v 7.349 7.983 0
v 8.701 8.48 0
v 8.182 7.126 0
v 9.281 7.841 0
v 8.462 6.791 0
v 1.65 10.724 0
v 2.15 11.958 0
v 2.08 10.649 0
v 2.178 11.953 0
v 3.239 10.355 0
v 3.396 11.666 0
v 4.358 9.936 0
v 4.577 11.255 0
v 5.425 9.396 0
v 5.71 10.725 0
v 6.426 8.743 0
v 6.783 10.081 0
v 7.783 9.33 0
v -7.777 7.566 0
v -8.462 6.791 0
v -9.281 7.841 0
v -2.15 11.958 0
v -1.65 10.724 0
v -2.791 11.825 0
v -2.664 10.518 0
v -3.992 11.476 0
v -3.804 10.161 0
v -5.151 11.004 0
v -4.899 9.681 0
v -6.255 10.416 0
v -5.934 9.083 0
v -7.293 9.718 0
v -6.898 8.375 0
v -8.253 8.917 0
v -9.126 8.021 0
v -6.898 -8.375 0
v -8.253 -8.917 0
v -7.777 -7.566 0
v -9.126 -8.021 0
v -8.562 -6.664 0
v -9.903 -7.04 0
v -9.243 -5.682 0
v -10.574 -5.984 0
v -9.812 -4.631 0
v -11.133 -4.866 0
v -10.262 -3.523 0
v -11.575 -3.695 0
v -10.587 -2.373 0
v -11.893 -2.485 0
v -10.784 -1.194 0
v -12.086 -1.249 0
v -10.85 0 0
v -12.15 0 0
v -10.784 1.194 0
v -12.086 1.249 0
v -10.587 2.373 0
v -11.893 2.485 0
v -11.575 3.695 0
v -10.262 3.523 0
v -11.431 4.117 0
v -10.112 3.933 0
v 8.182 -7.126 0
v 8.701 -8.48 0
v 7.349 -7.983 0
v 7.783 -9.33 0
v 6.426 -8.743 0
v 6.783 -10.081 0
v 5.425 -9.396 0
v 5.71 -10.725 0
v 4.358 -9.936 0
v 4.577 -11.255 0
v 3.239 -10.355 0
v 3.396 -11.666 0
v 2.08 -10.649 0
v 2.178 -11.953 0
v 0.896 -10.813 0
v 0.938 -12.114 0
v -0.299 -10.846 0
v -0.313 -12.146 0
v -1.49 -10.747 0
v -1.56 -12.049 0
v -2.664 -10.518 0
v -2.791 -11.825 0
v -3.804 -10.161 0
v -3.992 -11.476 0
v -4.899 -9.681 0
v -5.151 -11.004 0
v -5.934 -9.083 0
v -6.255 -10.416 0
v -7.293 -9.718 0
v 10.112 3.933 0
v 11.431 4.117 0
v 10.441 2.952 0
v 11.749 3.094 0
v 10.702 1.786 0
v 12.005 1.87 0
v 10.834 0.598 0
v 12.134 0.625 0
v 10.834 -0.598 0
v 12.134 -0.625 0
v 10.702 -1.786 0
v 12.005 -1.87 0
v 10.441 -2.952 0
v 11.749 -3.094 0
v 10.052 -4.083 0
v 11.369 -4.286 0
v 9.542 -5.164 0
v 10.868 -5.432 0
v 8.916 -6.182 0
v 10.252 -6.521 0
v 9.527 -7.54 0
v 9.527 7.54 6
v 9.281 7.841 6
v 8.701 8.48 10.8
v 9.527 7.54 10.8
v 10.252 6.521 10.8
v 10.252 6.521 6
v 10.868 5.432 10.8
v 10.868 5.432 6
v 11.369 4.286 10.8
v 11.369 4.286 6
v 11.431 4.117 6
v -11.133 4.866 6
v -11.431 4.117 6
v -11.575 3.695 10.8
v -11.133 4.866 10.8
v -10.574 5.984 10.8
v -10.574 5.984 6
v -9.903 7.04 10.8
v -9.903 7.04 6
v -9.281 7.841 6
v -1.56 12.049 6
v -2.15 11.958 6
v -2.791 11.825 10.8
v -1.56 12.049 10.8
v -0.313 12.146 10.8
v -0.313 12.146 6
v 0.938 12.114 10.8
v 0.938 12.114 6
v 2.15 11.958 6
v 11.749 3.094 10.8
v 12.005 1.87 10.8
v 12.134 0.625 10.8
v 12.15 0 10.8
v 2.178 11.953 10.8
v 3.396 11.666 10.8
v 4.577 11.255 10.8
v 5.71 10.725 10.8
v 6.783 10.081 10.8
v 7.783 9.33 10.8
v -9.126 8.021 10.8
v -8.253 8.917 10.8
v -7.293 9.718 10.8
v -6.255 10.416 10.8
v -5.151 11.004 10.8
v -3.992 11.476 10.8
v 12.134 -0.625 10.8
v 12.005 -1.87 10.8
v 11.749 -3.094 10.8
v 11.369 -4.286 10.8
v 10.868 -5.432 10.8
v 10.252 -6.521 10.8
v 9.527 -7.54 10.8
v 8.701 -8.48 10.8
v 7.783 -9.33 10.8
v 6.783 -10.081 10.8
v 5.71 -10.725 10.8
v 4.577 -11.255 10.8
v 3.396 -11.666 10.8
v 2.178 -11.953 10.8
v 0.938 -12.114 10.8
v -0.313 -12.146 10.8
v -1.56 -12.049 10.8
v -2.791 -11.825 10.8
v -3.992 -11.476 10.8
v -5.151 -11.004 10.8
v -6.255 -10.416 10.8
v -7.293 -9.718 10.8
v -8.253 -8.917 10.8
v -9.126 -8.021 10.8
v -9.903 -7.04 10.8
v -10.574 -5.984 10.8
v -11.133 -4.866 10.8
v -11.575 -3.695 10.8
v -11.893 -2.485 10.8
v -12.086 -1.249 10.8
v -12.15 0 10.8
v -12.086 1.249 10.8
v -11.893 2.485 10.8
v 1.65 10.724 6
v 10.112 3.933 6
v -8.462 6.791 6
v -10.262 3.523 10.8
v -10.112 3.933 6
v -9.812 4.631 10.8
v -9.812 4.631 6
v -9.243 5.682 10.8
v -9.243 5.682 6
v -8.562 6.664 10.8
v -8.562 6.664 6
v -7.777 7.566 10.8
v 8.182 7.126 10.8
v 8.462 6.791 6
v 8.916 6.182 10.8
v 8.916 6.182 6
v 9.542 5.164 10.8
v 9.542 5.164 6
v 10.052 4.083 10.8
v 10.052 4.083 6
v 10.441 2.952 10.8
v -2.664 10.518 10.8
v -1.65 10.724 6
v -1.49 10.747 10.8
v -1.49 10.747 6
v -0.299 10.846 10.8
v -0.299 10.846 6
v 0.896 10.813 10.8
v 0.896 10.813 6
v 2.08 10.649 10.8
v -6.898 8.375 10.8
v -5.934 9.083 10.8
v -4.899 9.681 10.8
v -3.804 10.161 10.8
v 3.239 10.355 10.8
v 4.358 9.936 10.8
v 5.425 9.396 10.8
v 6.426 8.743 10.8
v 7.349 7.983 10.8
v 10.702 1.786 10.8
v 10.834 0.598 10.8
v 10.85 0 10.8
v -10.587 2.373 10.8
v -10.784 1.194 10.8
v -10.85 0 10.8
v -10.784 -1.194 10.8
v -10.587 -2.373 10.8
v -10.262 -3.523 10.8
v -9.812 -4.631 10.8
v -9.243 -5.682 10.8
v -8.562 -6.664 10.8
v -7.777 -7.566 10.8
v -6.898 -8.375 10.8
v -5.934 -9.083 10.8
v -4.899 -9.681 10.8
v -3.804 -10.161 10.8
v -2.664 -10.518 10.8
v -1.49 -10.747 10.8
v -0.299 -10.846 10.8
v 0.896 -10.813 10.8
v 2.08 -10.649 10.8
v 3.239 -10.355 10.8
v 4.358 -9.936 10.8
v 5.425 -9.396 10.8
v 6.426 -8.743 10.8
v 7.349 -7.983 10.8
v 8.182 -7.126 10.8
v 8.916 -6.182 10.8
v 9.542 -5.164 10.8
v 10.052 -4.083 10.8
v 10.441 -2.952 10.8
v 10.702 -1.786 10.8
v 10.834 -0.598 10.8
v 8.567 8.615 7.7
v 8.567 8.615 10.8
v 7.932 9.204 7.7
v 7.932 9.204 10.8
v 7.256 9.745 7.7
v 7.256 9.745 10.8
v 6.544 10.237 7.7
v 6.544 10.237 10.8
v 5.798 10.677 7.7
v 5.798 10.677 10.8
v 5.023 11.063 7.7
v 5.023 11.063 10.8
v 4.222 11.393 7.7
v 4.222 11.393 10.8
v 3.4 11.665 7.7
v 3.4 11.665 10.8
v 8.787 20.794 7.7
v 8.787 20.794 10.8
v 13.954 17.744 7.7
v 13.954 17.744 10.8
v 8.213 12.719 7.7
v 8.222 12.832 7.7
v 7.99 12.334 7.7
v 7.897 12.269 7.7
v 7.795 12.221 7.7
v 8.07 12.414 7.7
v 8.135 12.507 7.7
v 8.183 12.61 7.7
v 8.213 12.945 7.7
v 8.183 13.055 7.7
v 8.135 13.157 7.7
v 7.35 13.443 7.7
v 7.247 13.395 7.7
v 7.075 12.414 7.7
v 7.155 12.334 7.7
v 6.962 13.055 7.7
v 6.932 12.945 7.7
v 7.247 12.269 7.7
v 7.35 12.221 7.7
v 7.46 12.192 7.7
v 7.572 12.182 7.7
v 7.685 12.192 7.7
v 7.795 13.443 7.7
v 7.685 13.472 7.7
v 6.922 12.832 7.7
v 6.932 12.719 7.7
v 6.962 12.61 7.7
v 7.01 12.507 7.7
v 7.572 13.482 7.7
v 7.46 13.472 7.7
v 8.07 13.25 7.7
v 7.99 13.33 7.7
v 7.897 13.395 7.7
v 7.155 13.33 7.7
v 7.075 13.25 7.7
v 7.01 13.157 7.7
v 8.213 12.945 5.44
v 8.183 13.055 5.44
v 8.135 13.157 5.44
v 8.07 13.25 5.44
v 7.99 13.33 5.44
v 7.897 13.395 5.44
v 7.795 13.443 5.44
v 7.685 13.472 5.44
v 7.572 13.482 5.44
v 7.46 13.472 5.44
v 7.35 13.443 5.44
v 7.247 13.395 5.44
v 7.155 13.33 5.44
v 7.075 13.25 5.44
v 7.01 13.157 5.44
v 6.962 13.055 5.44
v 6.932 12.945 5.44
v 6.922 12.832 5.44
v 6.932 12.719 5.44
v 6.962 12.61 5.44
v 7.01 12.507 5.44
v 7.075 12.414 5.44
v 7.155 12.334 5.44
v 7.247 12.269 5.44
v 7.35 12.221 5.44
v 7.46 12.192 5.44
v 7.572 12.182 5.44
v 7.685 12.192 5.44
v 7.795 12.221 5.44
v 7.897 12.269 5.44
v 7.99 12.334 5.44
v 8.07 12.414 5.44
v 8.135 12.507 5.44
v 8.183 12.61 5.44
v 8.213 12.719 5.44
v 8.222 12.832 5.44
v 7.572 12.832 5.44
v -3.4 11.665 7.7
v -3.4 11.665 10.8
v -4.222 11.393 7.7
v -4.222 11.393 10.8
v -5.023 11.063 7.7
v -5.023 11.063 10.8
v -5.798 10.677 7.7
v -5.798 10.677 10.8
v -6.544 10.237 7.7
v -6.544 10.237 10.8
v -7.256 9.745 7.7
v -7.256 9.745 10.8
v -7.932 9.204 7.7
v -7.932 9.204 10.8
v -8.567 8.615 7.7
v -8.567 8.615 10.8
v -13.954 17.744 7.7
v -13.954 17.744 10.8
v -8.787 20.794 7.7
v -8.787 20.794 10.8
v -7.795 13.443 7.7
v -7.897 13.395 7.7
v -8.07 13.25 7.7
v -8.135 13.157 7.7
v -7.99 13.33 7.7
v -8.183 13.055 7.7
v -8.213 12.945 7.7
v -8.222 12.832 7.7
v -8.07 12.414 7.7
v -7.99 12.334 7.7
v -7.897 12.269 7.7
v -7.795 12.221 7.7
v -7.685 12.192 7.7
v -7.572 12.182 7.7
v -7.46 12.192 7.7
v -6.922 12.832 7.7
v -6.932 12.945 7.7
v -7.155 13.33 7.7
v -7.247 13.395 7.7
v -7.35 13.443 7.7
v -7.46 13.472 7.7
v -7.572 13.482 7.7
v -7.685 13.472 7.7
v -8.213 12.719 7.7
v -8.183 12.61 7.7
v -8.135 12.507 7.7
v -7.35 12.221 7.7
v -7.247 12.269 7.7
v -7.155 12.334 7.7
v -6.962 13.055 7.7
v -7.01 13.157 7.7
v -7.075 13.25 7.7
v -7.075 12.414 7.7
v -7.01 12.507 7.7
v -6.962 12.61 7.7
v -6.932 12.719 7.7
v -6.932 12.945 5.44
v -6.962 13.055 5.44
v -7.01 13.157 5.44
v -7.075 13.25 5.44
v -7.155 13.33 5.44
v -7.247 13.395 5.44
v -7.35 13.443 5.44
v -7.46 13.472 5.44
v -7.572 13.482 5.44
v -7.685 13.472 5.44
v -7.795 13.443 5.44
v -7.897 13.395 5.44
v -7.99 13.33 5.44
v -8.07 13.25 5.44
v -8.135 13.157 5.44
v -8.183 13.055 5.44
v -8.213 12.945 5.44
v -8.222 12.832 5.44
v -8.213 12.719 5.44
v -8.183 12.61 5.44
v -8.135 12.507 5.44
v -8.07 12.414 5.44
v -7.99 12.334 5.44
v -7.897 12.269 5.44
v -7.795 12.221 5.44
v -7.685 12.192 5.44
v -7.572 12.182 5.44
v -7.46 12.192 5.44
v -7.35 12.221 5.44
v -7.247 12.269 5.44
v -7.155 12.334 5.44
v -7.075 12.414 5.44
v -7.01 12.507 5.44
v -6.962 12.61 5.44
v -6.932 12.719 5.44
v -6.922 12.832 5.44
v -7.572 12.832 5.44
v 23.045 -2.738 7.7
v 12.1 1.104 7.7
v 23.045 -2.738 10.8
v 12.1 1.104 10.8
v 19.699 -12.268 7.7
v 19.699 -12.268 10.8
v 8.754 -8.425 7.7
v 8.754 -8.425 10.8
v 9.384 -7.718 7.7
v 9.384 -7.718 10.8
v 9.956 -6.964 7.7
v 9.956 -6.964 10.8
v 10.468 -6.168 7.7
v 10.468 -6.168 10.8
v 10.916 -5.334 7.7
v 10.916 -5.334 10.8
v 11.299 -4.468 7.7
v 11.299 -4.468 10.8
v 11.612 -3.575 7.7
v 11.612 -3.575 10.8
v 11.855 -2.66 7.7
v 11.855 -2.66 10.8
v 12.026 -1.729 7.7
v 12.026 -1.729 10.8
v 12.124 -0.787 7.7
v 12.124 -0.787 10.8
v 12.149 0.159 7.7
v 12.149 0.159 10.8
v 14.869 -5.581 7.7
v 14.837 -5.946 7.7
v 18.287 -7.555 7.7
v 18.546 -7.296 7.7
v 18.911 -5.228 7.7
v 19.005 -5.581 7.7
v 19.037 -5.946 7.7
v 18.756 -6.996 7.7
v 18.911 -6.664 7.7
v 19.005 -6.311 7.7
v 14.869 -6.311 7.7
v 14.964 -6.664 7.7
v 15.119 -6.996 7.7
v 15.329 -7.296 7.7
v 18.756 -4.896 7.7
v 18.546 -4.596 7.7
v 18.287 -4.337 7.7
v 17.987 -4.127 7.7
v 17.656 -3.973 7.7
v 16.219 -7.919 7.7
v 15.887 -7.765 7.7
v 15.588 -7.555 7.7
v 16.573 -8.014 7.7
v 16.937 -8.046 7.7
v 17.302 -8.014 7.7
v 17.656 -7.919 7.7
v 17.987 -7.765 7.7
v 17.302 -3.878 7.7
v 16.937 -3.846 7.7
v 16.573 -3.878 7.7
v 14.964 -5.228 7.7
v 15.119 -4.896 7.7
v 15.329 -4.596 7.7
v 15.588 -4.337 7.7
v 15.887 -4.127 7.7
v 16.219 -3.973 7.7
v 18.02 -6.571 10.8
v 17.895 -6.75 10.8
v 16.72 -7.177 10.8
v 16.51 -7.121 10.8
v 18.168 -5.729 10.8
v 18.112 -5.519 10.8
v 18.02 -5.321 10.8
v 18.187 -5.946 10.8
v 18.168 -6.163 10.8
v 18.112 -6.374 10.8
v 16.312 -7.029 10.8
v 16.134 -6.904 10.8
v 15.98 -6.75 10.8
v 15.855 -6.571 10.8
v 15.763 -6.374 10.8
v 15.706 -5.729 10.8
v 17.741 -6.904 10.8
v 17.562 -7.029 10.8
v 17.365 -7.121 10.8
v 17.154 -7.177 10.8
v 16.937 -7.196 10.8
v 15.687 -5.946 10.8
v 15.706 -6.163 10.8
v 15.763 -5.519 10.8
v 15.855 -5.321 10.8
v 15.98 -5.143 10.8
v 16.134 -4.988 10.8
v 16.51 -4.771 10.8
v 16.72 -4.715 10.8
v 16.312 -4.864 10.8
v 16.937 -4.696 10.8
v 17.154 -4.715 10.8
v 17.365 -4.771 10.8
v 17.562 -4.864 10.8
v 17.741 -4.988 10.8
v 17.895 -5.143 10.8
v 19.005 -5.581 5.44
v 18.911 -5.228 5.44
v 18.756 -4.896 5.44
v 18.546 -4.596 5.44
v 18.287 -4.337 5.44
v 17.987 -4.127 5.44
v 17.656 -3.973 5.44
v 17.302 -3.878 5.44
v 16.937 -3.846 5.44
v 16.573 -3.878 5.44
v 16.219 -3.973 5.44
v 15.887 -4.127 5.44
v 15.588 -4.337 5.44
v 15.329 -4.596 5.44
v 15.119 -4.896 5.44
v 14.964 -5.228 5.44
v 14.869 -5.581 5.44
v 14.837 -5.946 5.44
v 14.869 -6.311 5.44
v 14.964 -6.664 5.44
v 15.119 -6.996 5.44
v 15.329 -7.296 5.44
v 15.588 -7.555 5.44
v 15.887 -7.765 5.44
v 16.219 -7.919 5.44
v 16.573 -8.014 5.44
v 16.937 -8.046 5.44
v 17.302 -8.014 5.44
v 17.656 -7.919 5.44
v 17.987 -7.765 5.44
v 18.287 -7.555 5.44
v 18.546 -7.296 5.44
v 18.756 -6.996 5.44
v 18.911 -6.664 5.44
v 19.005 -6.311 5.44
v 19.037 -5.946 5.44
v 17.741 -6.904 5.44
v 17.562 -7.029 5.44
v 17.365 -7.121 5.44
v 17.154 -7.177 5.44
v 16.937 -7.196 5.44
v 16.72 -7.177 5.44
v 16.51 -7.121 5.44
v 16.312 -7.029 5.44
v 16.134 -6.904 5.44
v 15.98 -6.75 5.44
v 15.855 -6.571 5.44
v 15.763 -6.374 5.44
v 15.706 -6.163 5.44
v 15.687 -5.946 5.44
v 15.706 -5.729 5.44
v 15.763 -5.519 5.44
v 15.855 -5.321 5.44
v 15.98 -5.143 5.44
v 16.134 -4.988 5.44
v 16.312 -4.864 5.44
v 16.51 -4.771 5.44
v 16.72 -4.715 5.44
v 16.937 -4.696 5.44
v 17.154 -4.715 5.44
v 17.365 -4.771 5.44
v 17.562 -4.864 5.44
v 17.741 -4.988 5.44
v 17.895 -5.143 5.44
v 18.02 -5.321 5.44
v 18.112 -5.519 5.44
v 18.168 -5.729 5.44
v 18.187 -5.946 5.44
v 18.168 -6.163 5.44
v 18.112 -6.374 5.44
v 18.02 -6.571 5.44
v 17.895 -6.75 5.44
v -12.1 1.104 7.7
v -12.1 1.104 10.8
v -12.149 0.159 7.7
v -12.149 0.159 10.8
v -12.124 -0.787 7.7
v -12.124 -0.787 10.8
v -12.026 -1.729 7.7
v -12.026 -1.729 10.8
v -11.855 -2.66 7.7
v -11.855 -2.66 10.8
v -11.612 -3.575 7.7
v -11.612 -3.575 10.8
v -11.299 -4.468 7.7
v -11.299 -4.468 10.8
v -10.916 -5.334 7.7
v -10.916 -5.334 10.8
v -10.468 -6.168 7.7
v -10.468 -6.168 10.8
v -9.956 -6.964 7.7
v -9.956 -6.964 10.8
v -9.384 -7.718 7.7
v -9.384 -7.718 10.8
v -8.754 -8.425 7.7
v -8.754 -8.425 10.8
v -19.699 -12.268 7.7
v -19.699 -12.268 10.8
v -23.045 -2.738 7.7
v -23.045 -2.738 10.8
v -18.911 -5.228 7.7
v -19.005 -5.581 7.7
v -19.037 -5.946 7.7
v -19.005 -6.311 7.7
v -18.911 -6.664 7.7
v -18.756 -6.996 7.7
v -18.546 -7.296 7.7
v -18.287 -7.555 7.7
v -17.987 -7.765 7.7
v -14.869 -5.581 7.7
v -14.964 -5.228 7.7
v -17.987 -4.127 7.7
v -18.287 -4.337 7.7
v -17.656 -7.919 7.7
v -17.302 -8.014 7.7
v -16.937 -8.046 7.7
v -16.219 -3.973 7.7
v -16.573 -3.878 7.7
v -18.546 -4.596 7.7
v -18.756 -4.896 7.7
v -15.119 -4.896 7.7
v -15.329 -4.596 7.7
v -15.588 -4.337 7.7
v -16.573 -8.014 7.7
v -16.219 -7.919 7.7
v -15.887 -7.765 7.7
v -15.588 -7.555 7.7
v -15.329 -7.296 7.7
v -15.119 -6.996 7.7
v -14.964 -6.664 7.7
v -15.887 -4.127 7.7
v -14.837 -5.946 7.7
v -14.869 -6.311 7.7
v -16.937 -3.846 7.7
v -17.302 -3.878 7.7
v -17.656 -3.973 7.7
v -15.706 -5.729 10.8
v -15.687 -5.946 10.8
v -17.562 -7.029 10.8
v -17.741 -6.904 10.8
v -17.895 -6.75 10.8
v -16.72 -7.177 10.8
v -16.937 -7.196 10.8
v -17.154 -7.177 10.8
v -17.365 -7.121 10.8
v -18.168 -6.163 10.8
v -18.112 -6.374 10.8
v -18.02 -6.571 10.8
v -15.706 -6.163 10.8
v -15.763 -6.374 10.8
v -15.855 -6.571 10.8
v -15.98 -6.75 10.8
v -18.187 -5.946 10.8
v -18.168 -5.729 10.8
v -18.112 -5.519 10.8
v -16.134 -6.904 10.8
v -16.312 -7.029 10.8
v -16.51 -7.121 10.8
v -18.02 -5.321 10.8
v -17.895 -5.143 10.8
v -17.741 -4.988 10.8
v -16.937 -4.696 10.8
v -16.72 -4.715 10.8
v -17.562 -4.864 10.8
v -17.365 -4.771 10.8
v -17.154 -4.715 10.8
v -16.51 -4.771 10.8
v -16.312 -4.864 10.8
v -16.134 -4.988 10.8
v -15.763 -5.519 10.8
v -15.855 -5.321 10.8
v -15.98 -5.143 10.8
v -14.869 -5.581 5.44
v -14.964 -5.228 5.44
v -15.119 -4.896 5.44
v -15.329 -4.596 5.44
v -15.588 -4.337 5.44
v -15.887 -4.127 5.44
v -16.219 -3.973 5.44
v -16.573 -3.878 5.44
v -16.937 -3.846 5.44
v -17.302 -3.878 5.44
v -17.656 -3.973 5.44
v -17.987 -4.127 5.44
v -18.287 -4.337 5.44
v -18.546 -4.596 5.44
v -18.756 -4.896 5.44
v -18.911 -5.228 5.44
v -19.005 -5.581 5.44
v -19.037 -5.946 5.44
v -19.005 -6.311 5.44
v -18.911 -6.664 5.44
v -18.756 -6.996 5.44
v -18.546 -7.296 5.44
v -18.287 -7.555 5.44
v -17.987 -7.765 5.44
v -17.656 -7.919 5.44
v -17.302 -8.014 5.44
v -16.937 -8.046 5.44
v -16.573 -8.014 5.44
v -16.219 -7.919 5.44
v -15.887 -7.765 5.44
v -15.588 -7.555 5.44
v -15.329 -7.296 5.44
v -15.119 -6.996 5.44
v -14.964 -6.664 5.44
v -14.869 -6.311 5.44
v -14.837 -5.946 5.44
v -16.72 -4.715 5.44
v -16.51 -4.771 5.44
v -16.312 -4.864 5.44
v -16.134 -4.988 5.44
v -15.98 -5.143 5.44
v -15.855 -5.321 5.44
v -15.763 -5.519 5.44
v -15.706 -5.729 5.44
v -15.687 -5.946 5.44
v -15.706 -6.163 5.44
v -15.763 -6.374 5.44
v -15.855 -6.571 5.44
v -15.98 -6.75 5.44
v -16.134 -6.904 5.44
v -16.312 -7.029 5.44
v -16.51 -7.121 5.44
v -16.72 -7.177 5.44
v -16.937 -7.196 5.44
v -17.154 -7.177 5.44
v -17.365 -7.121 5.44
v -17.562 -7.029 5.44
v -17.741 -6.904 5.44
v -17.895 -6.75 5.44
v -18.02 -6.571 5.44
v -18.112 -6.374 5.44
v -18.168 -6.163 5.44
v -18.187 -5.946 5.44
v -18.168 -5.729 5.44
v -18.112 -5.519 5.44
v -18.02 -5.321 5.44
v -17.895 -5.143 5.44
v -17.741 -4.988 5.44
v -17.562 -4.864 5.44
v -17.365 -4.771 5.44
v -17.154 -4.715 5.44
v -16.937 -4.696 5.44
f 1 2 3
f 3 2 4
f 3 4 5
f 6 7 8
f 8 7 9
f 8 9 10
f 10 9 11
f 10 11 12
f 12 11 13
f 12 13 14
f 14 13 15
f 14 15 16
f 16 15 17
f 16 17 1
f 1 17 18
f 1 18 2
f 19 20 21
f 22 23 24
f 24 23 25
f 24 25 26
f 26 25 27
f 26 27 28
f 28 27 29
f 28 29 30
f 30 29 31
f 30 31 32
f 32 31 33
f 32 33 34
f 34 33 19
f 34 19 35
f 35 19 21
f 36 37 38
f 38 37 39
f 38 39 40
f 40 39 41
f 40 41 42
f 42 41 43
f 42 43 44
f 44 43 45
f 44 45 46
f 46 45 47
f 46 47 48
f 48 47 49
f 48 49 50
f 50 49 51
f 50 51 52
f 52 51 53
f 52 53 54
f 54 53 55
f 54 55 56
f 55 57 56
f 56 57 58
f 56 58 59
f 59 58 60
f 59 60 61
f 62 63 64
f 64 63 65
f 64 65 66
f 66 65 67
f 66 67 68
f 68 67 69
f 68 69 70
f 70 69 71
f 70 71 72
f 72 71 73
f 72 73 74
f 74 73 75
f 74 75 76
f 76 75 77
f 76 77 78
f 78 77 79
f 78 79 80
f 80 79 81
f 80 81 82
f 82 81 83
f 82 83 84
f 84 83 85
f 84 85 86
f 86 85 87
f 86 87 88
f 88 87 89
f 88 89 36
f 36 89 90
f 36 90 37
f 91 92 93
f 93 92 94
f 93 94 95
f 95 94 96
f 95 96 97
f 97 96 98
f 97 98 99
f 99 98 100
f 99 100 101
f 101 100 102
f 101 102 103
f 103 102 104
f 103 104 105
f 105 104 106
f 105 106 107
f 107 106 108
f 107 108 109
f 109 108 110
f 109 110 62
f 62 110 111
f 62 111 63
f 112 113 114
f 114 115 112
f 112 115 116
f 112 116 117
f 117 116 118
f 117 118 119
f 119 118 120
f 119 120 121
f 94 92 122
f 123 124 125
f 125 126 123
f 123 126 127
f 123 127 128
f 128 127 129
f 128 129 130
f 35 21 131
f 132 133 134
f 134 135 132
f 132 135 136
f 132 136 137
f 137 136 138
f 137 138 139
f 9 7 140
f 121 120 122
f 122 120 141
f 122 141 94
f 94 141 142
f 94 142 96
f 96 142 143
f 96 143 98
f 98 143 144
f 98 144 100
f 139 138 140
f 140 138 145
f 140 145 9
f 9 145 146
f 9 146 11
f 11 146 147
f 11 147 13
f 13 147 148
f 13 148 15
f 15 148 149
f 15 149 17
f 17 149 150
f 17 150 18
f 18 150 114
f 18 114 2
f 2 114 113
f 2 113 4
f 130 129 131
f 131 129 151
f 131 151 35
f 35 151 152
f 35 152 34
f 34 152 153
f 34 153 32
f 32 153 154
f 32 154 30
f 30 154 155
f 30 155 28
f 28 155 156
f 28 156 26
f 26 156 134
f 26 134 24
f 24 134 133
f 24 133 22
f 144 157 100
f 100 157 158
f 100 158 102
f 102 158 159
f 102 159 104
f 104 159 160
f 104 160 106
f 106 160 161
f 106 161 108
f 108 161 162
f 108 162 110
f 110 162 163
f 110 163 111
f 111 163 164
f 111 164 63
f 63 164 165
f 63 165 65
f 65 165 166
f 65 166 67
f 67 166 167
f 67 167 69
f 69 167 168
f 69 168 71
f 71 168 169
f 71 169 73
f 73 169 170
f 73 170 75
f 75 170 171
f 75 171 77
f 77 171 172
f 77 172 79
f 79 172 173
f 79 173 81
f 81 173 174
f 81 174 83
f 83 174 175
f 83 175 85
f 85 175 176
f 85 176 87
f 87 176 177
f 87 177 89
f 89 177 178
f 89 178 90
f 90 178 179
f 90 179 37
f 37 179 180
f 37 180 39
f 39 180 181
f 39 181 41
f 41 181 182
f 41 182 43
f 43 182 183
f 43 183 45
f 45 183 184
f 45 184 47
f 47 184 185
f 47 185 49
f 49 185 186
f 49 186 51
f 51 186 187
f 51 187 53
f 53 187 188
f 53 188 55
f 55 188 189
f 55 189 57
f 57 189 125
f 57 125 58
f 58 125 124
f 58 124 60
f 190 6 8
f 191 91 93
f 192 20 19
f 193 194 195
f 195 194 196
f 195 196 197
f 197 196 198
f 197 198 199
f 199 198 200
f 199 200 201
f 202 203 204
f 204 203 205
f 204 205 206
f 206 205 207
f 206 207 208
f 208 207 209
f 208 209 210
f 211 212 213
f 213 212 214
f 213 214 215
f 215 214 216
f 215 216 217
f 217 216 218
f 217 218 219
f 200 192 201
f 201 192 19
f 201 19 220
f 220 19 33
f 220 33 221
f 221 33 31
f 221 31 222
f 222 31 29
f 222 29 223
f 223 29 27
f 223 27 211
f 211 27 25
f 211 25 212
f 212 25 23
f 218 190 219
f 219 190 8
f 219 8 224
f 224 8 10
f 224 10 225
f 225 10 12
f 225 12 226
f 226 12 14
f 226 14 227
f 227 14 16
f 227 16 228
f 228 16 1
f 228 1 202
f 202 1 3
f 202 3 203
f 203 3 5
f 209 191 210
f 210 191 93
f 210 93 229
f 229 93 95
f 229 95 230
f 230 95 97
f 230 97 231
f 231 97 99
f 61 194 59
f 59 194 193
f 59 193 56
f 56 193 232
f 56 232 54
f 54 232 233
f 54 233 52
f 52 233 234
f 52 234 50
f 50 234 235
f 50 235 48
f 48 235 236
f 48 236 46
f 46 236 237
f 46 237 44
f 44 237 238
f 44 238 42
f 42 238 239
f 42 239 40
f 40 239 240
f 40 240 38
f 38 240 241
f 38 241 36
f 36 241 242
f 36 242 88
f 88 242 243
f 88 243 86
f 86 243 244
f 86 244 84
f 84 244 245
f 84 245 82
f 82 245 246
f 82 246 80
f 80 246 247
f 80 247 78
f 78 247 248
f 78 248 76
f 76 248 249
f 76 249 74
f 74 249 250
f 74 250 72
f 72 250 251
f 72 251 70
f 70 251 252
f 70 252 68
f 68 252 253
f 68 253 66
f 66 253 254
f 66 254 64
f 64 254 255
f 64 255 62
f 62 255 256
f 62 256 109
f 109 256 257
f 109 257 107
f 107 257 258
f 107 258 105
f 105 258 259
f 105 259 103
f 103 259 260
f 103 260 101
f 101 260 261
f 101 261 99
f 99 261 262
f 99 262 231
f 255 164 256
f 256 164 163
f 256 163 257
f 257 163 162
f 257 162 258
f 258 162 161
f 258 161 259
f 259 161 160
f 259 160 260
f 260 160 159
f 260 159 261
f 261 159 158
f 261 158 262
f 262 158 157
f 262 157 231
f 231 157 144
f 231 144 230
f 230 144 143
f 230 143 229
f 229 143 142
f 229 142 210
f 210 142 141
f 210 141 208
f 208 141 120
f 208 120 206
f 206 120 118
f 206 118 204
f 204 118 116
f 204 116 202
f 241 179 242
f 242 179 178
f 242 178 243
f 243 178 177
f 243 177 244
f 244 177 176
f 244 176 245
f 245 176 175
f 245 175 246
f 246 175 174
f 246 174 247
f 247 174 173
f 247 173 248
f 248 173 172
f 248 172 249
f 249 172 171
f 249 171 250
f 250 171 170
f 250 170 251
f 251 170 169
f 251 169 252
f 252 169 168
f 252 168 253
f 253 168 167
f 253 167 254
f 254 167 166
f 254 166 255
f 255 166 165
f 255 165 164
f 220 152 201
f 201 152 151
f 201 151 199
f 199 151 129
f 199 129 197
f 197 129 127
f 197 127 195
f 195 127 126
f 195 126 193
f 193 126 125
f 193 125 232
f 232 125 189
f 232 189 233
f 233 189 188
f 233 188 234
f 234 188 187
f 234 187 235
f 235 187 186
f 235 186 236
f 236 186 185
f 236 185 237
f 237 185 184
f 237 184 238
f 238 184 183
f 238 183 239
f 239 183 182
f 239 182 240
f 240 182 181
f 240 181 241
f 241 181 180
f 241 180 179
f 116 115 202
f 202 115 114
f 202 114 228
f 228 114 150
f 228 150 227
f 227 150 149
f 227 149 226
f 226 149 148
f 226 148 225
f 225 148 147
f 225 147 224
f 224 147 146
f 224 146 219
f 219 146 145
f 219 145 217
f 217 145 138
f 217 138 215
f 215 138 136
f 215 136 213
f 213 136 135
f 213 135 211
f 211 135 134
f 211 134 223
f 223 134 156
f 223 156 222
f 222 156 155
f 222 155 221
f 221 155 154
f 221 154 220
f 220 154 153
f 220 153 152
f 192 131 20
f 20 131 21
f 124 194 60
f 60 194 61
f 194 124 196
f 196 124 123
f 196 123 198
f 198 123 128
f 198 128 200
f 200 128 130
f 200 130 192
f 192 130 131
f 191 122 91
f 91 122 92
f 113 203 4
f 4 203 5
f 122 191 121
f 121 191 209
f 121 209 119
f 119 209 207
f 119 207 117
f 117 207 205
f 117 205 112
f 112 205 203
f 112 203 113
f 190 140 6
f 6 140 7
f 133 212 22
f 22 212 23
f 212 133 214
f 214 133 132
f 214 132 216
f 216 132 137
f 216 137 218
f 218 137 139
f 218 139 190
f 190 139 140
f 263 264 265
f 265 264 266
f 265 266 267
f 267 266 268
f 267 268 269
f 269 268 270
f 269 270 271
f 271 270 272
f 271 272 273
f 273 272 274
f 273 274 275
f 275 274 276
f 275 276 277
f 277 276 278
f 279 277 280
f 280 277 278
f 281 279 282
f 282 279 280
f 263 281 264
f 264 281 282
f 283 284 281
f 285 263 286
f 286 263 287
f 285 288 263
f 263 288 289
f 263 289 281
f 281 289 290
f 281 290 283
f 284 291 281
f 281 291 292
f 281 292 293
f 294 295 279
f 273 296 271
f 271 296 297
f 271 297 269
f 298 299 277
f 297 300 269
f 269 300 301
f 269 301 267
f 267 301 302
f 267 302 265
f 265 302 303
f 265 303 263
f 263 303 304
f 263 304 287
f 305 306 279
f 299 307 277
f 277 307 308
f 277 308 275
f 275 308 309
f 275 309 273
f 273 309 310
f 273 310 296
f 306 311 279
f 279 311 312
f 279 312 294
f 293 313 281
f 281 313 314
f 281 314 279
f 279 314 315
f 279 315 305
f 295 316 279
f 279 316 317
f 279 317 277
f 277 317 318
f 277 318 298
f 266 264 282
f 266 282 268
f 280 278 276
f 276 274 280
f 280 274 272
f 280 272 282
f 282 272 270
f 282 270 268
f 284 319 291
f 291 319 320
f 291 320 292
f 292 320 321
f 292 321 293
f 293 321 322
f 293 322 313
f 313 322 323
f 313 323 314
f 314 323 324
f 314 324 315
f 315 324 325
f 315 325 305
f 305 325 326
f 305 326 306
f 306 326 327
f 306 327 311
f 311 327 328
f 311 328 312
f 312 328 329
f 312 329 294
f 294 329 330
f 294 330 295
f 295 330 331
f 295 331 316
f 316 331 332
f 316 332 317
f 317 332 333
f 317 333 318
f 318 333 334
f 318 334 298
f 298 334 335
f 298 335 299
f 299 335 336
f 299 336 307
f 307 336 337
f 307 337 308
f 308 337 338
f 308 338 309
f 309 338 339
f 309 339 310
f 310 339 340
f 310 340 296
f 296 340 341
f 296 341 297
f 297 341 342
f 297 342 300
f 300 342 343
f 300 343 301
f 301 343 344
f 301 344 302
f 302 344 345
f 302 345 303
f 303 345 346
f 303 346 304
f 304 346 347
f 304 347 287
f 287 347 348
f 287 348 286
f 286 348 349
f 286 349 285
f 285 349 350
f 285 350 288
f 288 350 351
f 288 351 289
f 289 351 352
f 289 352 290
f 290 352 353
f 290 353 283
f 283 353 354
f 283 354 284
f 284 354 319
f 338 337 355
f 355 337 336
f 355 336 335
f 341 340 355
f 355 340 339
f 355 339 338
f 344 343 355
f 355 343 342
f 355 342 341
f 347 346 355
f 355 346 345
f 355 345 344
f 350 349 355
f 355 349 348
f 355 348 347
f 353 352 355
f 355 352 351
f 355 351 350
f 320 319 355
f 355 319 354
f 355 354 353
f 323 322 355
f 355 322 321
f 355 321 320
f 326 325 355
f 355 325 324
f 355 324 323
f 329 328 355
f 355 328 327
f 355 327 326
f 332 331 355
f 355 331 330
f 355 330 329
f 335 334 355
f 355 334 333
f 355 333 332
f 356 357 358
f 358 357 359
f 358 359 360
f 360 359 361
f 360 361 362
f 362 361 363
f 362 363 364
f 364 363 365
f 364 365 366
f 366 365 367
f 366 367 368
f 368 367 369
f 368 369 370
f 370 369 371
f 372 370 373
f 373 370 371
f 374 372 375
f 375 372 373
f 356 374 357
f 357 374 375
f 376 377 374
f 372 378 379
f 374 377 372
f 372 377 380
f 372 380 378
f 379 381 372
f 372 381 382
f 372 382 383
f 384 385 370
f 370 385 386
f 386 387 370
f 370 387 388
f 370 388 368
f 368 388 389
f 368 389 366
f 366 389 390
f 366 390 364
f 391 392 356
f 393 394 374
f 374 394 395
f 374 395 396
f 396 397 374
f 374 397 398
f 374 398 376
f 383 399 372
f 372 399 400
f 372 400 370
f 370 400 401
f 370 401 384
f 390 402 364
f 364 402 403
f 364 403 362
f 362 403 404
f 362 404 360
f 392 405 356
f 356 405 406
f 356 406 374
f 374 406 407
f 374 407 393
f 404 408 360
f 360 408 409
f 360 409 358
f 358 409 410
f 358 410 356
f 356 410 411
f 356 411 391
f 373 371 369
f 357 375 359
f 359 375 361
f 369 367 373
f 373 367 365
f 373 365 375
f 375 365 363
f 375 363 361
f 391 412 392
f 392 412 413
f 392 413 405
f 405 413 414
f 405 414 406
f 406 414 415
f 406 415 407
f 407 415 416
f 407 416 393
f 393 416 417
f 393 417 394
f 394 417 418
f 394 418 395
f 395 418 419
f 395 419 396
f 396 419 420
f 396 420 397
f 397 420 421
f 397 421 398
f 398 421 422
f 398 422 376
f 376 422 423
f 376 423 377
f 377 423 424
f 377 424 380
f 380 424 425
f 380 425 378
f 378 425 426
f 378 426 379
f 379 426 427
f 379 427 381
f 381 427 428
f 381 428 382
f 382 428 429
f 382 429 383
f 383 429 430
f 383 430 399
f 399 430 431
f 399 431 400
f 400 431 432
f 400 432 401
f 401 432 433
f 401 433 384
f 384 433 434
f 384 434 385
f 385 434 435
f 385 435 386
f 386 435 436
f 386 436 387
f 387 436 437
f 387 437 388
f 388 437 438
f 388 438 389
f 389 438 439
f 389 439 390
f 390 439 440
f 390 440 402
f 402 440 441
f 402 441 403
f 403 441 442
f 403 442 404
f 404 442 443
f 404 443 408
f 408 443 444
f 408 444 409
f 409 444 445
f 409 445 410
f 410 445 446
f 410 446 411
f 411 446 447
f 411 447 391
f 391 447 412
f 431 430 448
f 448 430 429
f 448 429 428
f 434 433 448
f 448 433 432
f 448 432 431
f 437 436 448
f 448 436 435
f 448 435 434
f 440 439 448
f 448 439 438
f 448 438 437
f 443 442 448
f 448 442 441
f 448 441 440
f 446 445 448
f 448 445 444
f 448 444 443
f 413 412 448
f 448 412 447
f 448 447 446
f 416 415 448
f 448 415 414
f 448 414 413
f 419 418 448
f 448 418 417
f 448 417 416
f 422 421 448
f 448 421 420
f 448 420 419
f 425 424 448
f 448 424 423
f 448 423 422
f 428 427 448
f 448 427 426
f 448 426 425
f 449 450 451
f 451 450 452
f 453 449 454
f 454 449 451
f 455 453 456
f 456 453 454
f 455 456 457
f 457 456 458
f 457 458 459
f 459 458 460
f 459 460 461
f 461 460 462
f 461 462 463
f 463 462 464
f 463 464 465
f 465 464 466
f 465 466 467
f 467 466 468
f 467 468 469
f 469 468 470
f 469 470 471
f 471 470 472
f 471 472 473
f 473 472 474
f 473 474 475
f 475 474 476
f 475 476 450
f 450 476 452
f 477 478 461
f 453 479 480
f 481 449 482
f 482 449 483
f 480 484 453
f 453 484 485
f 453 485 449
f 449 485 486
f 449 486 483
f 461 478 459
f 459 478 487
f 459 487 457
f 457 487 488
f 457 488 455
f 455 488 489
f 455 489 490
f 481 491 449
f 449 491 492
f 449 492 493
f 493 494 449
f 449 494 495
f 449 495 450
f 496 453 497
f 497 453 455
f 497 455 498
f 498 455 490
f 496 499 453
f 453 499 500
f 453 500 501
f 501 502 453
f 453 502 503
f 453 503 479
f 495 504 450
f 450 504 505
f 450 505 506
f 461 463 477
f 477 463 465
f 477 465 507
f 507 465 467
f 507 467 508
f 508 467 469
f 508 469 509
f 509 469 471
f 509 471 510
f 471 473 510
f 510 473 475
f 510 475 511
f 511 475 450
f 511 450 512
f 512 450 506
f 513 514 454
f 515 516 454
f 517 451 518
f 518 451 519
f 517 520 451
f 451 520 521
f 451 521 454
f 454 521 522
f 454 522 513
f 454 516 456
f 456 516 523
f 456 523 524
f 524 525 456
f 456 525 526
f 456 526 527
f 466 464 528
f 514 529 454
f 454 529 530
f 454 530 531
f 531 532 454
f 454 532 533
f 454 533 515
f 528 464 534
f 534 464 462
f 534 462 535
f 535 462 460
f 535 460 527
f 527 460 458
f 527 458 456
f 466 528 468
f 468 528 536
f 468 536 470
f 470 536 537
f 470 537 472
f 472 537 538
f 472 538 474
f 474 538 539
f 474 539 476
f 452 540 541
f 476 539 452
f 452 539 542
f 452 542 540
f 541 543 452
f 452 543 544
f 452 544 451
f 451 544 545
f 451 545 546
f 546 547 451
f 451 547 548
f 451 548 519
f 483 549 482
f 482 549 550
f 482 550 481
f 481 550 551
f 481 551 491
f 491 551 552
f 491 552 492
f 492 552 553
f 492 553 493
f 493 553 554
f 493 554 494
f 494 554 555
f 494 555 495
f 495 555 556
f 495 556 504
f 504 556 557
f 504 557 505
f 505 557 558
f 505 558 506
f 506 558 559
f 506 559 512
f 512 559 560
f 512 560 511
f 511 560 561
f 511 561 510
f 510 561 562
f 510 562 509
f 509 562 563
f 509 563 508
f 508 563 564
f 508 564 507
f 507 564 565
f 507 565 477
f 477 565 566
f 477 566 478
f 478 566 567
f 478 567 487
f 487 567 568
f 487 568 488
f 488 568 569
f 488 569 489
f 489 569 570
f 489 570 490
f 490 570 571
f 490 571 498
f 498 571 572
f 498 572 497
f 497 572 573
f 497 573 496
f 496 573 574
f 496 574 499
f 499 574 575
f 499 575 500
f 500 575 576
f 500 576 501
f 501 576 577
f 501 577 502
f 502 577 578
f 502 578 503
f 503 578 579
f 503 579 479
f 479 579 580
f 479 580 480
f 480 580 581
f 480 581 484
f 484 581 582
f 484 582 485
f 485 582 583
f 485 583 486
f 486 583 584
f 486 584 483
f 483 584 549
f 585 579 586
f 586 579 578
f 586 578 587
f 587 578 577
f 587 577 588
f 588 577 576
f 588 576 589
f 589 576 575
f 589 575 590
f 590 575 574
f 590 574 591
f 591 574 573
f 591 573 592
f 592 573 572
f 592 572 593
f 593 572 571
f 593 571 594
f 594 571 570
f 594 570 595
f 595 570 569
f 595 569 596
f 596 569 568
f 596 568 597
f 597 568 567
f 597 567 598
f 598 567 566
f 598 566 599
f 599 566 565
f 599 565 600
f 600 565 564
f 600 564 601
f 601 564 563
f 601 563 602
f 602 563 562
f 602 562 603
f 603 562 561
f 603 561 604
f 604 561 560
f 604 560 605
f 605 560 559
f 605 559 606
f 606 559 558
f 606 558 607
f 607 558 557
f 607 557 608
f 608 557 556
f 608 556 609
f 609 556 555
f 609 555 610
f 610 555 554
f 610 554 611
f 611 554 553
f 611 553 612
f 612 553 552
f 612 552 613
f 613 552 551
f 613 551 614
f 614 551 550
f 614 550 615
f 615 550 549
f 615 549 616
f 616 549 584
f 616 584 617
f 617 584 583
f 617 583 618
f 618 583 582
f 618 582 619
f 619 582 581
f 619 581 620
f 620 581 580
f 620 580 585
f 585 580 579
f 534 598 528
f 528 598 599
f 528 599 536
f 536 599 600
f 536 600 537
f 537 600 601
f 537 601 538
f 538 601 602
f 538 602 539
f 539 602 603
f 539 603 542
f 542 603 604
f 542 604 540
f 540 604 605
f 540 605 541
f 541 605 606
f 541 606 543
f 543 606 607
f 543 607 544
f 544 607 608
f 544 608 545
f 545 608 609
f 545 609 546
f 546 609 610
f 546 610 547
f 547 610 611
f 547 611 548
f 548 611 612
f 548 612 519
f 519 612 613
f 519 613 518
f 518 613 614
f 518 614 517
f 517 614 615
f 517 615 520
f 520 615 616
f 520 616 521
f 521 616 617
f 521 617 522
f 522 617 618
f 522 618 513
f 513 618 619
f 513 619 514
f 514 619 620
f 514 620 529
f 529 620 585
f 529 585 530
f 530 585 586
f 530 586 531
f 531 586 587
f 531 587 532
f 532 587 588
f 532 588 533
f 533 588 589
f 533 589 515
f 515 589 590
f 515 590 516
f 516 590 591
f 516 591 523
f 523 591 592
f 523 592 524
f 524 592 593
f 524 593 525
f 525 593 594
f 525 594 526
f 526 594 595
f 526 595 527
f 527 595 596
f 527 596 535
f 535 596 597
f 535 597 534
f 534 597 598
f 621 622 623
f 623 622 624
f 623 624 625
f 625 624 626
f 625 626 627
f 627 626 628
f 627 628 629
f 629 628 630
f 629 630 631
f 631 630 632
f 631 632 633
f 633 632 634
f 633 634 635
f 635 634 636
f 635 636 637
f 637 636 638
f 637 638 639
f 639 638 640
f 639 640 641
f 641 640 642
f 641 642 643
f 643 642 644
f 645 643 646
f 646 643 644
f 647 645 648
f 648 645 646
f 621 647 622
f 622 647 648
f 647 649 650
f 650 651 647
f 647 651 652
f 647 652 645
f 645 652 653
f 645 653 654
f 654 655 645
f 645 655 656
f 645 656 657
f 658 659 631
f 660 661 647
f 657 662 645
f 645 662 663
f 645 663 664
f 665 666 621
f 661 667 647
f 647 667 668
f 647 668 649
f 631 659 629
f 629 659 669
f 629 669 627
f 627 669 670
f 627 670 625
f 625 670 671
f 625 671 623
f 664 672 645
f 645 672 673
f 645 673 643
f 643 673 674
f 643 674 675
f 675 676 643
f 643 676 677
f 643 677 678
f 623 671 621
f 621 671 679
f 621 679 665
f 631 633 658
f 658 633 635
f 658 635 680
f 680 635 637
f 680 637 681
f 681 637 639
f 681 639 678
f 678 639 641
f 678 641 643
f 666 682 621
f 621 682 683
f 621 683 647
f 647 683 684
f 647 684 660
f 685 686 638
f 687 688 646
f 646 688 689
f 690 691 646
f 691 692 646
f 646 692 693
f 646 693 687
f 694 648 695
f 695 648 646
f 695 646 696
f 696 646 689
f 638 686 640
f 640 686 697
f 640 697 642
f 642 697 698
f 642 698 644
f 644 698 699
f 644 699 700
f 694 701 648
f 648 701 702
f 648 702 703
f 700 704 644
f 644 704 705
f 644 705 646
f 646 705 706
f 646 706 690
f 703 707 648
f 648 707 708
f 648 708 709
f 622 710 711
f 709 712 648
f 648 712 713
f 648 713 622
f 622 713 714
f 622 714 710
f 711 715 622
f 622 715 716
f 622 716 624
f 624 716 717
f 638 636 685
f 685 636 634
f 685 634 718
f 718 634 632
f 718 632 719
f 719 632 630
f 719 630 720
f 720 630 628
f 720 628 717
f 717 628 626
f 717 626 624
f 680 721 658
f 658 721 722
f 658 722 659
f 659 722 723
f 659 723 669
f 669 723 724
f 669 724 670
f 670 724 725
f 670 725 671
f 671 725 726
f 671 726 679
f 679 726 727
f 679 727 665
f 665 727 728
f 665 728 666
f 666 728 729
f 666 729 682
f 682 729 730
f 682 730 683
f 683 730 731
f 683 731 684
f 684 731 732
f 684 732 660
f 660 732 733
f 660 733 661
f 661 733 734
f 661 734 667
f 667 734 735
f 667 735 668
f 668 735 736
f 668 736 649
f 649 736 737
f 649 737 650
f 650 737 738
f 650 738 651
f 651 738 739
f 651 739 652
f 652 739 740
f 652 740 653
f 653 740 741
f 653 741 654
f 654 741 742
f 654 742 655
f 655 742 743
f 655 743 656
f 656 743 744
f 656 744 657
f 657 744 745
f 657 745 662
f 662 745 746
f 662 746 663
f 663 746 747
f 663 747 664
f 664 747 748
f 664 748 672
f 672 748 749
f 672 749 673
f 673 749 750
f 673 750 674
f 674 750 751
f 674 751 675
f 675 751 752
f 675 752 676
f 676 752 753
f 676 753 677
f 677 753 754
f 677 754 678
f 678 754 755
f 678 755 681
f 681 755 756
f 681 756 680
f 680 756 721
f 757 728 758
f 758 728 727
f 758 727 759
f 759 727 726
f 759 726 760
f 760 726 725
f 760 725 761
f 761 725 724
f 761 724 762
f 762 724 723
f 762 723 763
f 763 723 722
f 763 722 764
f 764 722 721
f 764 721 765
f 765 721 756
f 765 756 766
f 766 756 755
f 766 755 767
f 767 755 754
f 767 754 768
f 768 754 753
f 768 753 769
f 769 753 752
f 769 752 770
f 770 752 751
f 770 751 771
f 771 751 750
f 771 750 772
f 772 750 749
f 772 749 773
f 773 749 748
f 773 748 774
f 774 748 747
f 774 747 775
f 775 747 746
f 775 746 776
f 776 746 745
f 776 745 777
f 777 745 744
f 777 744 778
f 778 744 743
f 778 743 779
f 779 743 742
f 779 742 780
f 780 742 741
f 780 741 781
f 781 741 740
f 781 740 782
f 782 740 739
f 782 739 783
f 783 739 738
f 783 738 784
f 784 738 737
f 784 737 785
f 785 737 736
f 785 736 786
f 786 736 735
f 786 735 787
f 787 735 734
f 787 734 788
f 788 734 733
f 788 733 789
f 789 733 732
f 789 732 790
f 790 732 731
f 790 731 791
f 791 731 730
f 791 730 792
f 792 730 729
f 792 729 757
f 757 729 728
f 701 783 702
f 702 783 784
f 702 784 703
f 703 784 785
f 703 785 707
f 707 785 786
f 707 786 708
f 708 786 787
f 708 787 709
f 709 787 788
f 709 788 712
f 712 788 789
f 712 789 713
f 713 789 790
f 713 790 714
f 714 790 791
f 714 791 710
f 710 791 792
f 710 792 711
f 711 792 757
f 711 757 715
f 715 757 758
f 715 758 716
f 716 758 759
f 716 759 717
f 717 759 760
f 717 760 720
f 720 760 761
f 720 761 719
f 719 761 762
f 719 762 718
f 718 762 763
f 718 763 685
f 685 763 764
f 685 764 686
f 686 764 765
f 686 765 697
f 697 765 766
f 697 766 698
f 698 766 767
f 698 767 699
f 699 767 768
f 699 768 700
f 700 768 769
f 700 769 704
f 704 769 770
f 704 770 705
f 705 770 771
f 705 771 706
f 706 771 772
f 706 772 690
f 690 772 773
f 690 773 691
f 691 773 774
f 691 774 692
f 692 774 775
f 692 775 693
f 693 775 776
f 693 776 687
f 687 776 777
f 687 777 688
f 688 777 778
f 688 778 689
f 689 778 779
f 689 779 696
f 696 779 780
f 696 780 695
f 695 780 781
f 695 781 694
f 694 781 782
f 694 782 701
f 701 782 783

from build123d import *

# Parameters (mm, degrees)
IZIM1_R                       = 12.15
IZIM1_R_2                     = 10.85
Y_KSEKLIK_EKSTR_ZYON2_DEPTH   = 10.8
KES_EKSTR_ZYON1_DEPTH         = 6
Y_KSEKLIK_EKSTR_ZYON3_DEPTH   = 3.1
Y_KSEKLIK_EKSTR_ZYON3_2_DEPTH = 3.1
Y_KSEKLIK_EKSTR_ZYON3_3_DEPTH = 3.1
Y_KSEKLIK_EKSTR_ZYON3_4_DEPTH = 3.1
IZIM4_R                       = 0.65
IZIM4_R_2                     = 2.1
Y_KSEKLIK_EKSTR_ZYON4_DEPTH   = 2.26
IZIM5_R                       = 1.25
KES_EKSTR_ZYON2_DEPTH         = 5.36


with BuildPart() as part:
    # Çizim1 → Yükseklik-Ekstrüzyon2 (new body)
    with BuildSketch(Plane.XY):
        with Locations(Location((0, 0, 0), (0, 0, 180))):
            Circle(IZIM1_R)
        with Locations(Location((0, 0, 0), (0, 0, 180))):
            Circle(IZIM1_R_2, mode=Mode.SUBTRACT)
    extrude(amount=Y_KSEKLIK_EKSTR_ZYON2_DEPTH)

    # Çizim2 → Kes-Ekstrüzyon1 (cut)
    with BuildSketch(Plane.XY):
        with BuildLine():
            Line((1.65, 10.723805295), (2.15, 11.958260743))
            ThreePointArc((2.15, 11.958260743), (0, 12.15), (-2.15, 11.958260743))
            Line((-2.15, 11.958260743), (-1.65, 10.723805295))
            ThreePointArc((-1.65, 10.723805295), (0, 10.85), (1.65, 10.723805295))
        make_face()
        with BuildLine():
            Line((8.462087811, 6.790844564), (9.281157589, 7.84108499))
            ThreePointArc((9.281157589, 7.84108499), (10.522208656, 6.075), (11.431157589, 4.117175753))
            Line((11.431157589, 4.117175753), (10.112087811, 3.932960731))
            ThreePointArc((10.112087811, 3.932960731), (9.396375631, 5.425), (8.462087811, 6.790844564))
        make_face()
        with BuildLine():
            Line((-10.112087811, 3.932960731), (-11.431157589, 4.117175753))
            ThreePointArc((-11.431157589, 4.117175753), (-10.522208656, 6.075), (-9.281157589, 7.84108499))
            Line((-9.281157589, 7.84108499), (-8.462087811, 6.790844564))
            ThreePointArc((-8.462087811, 6.790844564), (-9.396375631, 5.425), (-10.112087811, 3.932960731))
        make_face()
    extrude(amount=KES_EKSTR_ZYON1_DEPTH, mode=Mode.SUBTRACT)


with BuildPart() as body_2:
    # Çizim3 → Yükseklik-Ekstrüzyon3 (new body)
    with BuildSketch(Plane.XY.offset(10.8)):
        with BuildLine():
            Line((3.4, 11.664583147), (8.787130691, 20.793593111))
            Line((8.787130691, 20.793593111), (13.954494822, 17.744273851))
            Line((13.954494822, 17.744273851), (8.56736413, 8.615263888))
            ThreePointArc((8.56736413, 8.615263888), (6.1748715, 10.463912364), (3.4, 11.664583147))
        make_face()
    extrude(amount=-Y_KSEKLIK_EKSTR_ZYON3_DEPTH)



with BuildPart() as body_3:
    # Çizim3 → Y_kseklik-Ekstr_zyon3 2 (new body)
    with BuildSketch(Plane.XY.offset(10.8)):
        with BuildLine():
            Line((-8.56736413, 8.615263888), (-13.954494822, 17.744273851))
            Line((-13.954494822, 17.744273851), (-8.787130691, 20.793593111))
            Line((-8.787130691, 20.793593111), (-3.4, 11.664583147))
            ThreePointArc((-3.4, 11.664583147), (-6.1748715, 10.463912364), (-8.56736413, 8.615263888))
        make_face()
    extrude(amount=-Y_KSEKLIK_EKSTR_ZYON3_2_DEPTH)


with BuildPart() as body_4:
    # Çizim3 → Y_kseklik-Ekstr_zyon3 3 (new body)
    with BuildSketch(Plane.XY.offset(10.8)):
        with BuildLine():
            Line((8.754164309, -8.425384695), (19.699299537, -12.267781713))
            Line((19.699299537, -12.267781713), (23.044834871, -2.737965695))
            Line((23.044834871, -2.737965695), (12.099699643, 1.104431323))
            ThreePointArc((12.099699643, 1.104431323), (11.464085605, -4.024579635), (8.754164309, -8.425384695))
        make_face()
    extrude(amount=-Y_KSEKLIK_EKSTR_ZYON3_3_DEPTH)


with BuildPart() as body_5:
    # Çizim3 → Y_kseklik-Ekstr_zyon3 4 (new body)
    with BuildSketch(Plane.XY.offset(10.8)):
        with BuildLine():
            Line((-12.099699643, 1.104431323), (-23.044834871, -2.737965695))
            Line((-23.044834871, -2.737965695), (-19.699299537, -12.267781713))
            Line((-19.699299537, -12.267781713), (-8.754164309, -8.425384695))
            ThreePointArc((-8.754164309, -8.425384695), (-11.464085605, -4.024579635), (-12.099699643, 1.104431323))
        make_face()
    extrude(amount=-Y_KSEKLIK_EKSTR_ZYON3_4_DEPTH)


with BuildPart() as body_2_1:
    add(body_2.part)

    add(body_3.part)  # Yükseklik-Ekstrüzyon4 merges body 3

    add(body_4.part)  # Yükseklik-Ekstrüzyon4 merges body 4

    add(body_5.part)  # Yükseklik-Ekstrüzyon4 merges body 5
    # Çizim4 → Yükseklik-Ekstrüzyon4 (add)
    with BuildSketch(Plane(origin=(0, 0, 7.7), x_dir=(-1, 0, 0), z_dir=(0, 0, -1))):
        with Locations(Location((7.572476161, 12.83228759, 0), (0, 0, 180))):
            Circle(IZIM4_R)
        with Locations(Location((-7.572476161, 12.83228759, 0), (0, 0, 180))):
            Circle(IZIM4_R)
        with Locations((16.937400344, -5.946040429)):
            Circle(IZIM4_R_2)
        with Locations((-16.937400344, -5.946040429)):
            Circle(IZIM4_R_2)
    extrude(amount=Y_KSEKLIK_EKSTR_ZYON4_DEPTH)

    # Çizim5 → Kes-Ekstrüzyon2 (cut)
    with BuildSketch(Plane(origin=(0, 0, 5.44), x_dir=(-1, 0, 0), z_dir=(0, 0, -1))):
        with Locations((16.937400344, -5.946040429)):
            Circle(IZIM5_R)
        with Locations((-16.937400344, -5.946040429)):
            Circle(IZIM5_R)
    extrude(amount=-KES_EKSTR_ZYON2_DEPTH, mode=Mode.SUBTRACT)


solid = Compound([part.part, body_2_1.part])
